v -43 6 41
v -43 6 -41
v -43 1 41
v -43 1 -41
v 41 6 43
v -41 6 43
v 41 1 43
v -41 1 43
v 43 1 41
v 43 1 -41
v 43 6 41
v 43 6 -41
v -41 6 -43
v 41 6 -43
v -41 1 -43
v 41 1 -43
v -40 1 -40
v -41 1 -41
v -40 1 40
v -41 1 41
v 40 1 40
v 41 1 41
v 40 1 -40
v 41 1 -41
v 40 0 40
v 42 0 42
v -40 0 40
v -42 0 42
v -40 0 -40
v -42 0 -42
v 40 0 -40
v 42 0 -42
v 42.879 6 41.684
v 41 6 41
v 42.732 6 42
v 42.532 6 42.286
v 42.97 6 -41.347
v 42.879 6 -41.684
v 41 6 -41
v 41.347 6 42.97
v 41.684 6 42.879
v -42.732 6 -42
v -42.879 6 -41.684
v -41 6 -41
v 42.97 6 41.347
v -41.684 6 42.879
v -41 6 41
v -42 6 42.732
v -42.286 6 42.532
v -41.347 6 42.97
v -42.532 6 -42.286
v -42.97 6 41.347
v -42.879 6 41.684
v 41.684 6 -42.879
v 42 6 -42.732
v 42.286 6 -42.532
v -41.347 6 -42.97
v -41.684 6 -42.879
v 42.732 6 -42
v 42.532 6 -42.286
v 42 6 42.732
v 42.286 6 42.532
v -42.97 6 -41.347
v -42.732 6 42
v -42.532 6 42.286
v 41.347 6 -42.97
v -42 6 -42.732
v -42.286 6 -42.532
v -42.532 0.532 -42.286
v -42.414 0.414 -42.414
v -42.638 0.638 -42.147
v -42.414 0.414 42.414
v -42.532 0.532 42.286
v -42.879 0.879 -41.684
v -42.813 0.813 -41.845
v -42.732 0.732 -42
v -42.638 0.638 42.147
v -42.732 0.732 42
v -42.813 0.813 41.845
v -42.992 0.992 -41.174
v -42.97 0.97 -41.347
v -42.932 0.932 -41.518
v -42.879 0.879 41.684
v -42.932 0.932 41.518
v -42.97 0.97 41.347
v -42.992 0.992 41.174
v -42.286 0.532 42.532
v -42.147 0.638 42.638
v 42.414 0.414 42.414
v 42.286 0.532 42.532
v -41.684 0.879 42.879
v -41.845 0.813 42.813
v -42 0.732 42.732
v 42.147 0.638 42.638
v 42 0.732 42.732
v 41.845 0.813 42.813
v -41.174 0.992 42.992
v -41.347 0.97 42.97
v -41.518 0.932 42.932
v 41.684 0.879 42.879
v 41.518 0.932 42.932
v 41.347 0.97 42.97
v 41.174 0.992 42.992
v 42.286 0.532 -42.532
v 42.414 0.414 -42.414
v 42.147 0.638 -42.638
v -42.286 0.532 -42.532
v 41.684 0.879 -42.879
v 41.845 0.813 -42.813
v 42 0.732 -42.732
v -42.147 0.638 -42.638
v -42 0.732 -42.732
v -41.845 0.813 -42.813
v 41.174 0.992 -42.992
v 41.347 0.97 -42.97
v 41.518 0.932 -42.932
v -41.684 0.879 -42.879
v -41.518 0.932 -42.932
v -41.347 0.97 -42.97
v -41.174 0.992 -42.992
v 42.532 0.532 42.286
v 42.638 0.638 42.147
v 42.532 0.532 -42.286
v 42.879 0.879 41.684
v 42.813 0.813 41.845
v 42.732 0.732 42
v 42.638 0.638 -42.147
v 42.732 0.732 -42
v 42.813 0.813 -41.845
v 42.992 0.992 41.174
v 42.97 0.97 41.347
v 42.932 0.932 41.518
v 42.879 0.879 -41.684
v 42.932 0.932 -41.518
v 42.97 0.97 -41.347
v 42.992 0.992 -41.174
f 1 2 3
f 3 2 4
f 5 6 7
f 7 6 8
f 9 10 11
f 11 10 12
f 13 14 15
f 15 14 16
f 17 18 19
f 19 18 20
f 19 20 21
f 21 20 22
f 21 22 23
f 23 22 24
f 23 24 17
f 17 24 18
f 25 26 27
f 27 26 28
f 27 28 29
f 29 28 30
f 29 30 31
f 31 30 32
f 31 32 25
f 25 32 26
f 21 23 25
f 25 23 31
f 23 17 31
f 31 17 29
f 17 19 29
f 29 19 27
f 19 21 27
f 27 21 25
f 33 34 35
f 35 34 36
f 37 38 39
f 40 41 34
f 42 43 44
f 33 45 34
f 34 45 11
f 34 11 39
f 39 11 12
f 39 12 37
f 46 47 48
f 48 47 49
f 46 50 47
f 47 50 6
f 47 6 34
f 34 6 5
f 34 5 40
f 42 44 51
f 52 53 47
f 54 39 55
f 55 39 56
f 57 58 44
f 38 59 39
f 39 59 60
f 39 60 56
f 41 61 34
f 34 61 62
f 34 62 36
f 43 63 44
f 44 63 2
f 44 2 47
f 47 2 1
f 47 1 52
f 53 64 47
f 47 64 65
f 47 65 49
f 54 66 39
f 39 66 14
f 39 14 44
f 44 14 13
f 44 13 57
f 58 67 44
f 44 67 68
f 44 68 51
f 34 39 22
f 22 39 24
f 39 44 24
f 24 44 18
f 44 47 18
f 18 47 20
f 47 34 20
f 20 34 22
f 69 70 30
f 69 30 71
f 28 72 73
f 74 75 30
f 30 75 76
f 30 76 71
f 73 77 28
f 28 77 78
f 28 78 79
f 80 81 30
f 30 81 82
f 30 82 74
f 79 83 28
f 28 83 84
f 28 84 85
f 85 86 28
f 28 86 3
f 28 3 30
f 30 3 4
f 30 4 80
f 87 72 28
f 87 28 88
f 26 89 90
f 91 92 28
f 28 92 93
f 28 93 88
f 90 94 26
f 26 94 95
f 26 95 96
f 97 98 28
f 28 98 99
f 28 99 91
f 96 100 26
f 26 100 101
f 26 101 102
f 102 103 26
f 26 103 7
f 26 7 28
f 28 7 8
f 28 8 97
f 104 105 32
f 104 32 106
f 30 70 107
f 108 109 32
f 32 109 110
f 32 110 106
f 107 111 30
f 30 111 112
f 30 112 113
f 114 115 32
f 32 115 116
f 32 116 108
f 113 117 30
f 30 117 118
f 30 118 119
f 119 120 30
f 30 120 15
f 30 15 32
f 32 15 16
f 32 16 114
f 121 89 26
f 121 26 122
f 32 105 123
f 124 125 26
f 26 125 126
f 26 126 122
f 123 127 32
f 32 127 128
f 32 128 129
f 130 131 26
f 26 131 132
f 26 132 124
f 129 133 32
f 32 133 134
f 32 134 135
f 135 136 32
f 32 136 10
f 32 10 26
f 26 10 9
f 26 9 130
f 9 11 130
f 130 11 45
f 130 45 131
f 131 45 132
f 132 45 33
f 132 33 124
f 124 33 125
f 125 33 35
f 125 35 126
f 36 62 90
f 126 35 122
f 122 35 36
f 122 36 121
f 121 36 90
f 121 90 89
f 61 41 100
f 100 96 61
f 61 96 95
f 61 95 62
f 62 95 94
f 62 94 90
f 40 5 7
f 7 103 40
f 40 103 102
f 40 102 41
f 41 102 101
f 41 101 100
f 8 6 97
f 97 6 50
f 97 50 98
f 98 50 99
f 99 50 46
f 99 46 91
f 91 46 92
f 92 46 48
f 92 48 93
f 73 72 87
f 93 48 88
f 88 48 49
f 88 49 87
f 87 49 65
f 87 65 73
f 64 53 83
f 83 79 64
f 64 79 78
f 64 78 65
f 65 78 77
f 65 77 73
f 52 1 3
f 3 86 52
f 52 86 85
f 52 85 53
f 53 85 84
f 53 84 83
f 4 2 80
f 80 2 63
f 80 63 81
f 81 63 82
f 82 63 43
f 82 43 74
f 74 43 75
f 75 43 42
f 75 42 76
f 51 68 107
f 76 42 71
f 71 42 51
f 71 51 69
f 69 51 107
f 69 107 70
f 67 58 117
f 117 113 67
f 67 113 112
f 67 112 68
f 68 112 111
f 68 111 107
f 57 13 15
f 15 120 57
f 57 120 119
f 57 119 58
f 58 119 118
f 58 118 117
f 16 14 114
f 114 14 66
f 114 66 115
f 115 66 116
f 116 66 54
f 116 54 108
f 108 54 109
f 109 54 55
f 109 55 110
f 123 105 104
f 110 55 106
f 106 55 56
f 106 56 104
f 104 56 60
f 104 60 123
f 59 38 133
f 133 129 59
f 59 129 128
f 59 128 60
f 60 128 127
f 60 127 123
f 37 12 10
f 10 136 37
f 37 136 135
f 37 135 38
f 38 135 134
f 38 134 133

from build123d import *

# Parameters (mm, degrees)
SKETCH_1_W          = 86
SKETCH_1_H          = 86
EXTRUDE_1_DEPTH     = 1
SKETCH_2_W          = 80
SKETCH_2_H          = 80
CUT_EXTRUDE_1_DEPTH = 61.819404798
SKETCH_3_W          = 86
SKETCH_3_H          = 86
SKETCH_3_W_2        = 82
SKETCH_3_H_2        = 82
EXTRUDE_2_DEPTH     = 5
CHAMFER_1_SIZE      = 1
FILLET_1_R          = 2


with BuildPart() as part:
    # 草图1 → 凸台-拉伸1 (new body)
    with BuildSketch(Plane(origin=(0, 0, 0), x_dir=(1, 0, 0), z_dir=(0, 1, 0))):
        Rectangle(SKETCH_1_W, SKETCH_1_H)
    extrude(amount=EXTRUDE_1_DEPTH)

    # 草图2 → 切除-拉伸1 (cut, through all)
    with BuildSketch(Plane.XZ):
        Rectangle(SKETCH_2_W, SKETCH_2_H)
    extrude(amount=-CUT_EXTRUDE_1_DEPTH, mode=Mode.SUBTRACT)

    # 草图3 → 凸台-拉伸2 (add)
    with BuildSketch(Plane(origin=(0, 1, 0), x_dir=(1, 0, 0), z_dir=(0, 1, 0))):
        Rectangle(SKETCH_3_W, SKETCH_3_H)
        Rectangle(SKETCH_3_W_2, SKETCH_3_H_2, mode=Mode.SUBTRACT)
    extrude(amount=EXTRUDE_2_DEPTH)

    # 倒角1
    chamfer_1_edges = [part.edges().sort_by_distance(p)[0] for p in [
        (0, 0, 43),
        (43, 0, 0),
        (0, 0, -43),
        (-43, 0, 0),
    ]]
    chamfer(chamfer_1_edges, length=CHAMFER_1_SIZE)

    # 圆角1
    fillet_1_edges = [part.edges().sort_by_distance(p)[0] for p in [
        (-43, 3.5, 43),
        (43, 3.5, 43),
        (43, 3.5, -43),
        (-43, 3.5, -43),
    ]]
    fillet(fillet_1_edges, radius=FILLET_1_R)


solid = part.part
